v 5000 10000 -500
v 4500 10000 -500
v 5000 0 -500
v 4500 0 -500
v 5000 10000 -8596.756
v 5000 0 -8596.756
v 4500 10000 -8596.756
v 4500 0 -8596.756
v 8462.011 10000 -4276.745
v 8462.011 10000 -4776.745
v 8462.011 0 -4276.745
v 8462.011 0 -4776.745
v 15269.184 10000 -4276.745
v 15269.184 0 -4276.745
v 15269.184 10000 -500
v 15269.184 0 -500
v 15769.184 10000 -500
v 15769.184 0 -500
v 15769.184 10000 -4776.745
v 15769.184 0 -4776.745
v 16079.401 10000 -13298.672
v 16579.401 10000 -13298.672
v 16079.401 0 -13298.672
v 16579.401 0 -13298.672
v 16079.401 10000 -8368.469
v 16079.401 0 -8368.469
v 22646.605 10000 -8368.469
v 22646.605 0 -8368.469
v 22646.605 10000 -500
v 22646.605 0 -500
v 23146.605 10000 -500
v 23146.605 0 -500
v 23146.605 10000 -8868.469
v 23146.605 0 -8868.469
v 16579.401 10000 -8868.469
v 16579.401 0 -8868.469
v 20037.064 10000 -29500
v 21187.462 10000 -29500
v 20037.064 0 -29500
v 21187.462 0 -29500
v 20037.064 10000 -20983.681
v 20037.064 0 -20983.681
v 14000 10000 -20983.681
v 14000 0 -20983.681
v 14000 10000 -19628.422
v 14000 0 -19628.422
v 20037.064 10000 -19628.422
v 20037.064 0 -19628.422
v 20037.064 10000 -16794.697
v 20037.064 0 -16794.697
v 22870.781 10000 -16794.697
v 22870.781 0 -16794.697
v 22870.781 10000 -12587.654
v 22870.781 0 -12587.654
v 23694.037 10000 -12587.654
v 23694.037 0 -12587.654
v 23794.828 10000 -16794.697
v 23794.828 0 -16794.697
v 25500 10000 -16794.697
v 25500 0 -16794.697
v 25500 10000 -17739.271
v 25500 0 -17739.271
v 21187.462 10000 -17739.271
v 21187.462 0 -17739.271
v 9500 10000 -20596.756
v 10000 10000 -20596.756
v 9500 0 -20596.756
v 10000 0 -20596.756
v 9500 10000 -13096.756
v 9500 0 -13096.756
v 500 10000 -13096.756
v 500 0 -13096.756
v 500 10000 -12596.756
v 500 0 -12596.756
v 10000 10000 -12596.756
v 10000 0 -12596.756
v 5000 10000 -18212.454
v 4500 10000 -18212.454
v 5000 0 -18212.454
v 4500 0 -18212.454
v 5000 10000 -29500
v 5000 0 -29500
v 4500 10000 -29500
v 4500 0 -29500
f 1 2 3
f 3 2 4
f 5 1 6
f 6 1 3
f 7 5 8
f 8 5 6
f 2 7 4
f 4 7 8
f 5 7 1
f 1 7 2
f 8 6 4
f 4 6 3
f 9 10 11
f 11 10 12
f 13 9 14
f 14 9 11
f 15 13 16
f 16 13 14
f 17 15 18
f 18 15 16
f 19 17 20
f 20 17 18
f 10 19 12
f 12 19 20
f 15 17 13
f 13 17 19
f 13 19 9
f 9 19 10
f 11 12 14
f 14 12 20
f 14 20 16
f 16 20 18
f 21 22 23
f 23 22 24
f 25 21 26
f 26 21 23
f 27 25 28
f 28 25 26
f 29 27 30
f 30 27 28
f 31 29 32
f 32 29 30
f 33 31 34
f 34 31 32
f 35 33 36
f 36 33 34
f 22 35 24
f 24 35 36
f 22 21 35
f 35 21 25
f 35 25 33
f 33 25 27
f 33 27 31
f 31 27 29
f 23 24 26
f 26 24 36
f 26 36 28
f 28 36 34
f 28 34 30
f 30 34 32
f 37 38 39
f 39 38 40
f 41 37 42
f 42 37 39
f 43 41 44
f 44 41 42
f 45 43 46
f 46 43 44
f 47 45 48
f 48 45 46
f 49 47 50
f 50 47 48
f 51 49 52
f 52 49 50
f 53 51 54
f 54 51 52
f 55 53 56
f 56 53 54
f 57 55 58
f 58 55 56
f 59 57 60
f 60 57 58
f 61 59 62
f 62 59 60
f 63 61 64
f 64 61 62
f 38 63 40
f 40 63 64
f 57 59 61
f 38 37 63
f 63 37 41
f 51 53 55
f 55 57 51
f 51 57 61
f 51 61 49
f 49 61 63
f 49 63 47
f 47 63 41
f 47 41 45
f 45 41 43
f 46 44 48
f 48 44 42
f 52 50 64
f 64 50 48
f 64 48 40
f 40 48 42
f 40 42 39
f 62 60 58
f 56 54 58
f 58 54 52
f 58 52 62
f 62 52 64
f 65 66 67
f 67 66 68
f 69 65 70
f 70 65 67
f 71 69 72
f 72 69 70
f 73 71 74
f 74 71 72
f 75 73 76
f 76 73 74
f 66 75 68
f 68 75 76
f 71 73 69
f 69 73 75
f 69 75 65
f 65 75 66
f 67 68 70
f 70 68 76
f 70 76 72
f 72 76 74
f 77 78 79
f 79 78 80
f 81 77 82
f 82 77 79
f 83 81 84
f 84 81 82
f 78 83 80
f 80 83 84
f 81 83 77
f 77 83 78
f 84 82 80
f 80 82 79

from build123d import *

# Parameters (mm, degrees)
SKETCH9_W            = 500
SKETCH9_H            = 8096.755147093
BOSS_EXTRUDE5_DEPTH  = 10000
BOSS_EXTRUDE6_DEPTH  = 10000
BOSS_EXTRUDE7_DEPTH  = 10000
BOSS_EXTRUDE8_DEPTH  = 10000
BOSS_EXTRUDE9_DEPTH  = 10000
SKETCH14_W           = 500
SKETCH14_H           = 11287.545399206
BOSS_EXTRUDE10_DEPTH = 10000


with BuildPart() as part:
    # Sketch9 → Boss-Extrude5 (new body)
    with BuildSketch(Plane(origin=(0, 0, 0), x_dir=(1, 0, 0), z_dir=(0, 1, 0))):
        with Locations((4750, 4548.377573547)):
            Rectangle(SKETCH9_W, SKETCH9_H)
    extrude(amount=BOSS_EXTRUDE5_DEPTH)


with BuildPart() as body_2:
    # Sketch1 → Boss-Extrude6 (new body)
    with BuildSketch(Plane(origin=(0, 0, 0), x_dir=(1, 0, 0), z_dir=(0, 1, 0))):
        Polygon((8462.011757956, 4776.7457449), (15769.183881246, 4776.7457449), (15769.183881246, 500), (15269.183881246, 500), (15269.183881246, 4276.7457449), (8462.011757956, 4276.7457449), align=None)
    extrude(amount=BOSS_EXTRUDE6_DEPTH)


with BuildPart() as body_3:
    # Sketch11 → Boss-Extrude7 (new body)
    with BuildSketch(Plane(origin=(0, 0, 0), x_dir=(1, 0, 0), z_dir=(0, 1, 0))):
        Polygon((16579.401831089, 13298.67172662), (16579.401831089, 8868.468538599), (23146.603843365, 8868.468538599), (23146.603843365, 500), (22646.603843365, 500), (22646.603843365, 8368.468538599), (16079.401831089, 8368.468538599), (16079.401831089, 13298.67172662), align=None)
    extrude(amount=BOSS_EXTRUDE7_DEPTH)


with BuildPart() as body_4:
    # Sketch12 → Boss-Extrude8 (new body)
    with BuildSketch(Plane(origin=(0, 0, 0), x_dir=(1, 0, 0), z_dir=(0, 1, 0))):
        Polygon((20037.063886677, 29500), (20037.063886677, 20983.680435406), (14000, 20983.680435406), (14000, 19628.42119554), (20037.063886677, 19628.42119554), (20037.063886677, 16794.697330365), (22870.780995046, 16794.697330365), (22870.780995046, 12587.654768297), (23694.036844744, 12587.654768297), (23794.82814267, 16794.697330365), (25500, 16794.697330365), (25500, 17739.27195209), (21187.462413517, 17739.27195209), (21187.462413517, 29500), align=None)
    extrude(amount=BOSS_EXTRUDE8_DEPTH)


with BuildPart() as body_5:
    # Sketch13 → Boss-Extrude9 (new body)
    with BuildSketch(Plane(origin=(0, 0, 0), x_dir=(1, 0, 0), z_dir=(0, 1, 0))):
        Polygon((500, 13096.755147093), (9500, 13096.755147093), (9500, 20596.755147093), (10000, 20596.755147093), (10000, 12596.755147093), (500, 12596.755147093), align=None)
    extrude(amount=BOSS_EXTRUDE9_DEPTH)


with BuildPart() as body_6:
    # Sketch14 → Boss-Extrude10 (new body)
    with BuildSketch(Plane(origin=(0, 0, 0), x_dir=(1, 0, 0), z_dir=(0, 1, 0))):
        with Locations((4750, 23856.227300397)):
            Rectangle(SKETCH14_W, SKETCH14_H)
    extrude(amount=BOSS_EXTRUDE10_DEPTH)


solid = Compound([part.part, body_2.part, body_3.part, body_4.part, body_5.part, body_6.part])
